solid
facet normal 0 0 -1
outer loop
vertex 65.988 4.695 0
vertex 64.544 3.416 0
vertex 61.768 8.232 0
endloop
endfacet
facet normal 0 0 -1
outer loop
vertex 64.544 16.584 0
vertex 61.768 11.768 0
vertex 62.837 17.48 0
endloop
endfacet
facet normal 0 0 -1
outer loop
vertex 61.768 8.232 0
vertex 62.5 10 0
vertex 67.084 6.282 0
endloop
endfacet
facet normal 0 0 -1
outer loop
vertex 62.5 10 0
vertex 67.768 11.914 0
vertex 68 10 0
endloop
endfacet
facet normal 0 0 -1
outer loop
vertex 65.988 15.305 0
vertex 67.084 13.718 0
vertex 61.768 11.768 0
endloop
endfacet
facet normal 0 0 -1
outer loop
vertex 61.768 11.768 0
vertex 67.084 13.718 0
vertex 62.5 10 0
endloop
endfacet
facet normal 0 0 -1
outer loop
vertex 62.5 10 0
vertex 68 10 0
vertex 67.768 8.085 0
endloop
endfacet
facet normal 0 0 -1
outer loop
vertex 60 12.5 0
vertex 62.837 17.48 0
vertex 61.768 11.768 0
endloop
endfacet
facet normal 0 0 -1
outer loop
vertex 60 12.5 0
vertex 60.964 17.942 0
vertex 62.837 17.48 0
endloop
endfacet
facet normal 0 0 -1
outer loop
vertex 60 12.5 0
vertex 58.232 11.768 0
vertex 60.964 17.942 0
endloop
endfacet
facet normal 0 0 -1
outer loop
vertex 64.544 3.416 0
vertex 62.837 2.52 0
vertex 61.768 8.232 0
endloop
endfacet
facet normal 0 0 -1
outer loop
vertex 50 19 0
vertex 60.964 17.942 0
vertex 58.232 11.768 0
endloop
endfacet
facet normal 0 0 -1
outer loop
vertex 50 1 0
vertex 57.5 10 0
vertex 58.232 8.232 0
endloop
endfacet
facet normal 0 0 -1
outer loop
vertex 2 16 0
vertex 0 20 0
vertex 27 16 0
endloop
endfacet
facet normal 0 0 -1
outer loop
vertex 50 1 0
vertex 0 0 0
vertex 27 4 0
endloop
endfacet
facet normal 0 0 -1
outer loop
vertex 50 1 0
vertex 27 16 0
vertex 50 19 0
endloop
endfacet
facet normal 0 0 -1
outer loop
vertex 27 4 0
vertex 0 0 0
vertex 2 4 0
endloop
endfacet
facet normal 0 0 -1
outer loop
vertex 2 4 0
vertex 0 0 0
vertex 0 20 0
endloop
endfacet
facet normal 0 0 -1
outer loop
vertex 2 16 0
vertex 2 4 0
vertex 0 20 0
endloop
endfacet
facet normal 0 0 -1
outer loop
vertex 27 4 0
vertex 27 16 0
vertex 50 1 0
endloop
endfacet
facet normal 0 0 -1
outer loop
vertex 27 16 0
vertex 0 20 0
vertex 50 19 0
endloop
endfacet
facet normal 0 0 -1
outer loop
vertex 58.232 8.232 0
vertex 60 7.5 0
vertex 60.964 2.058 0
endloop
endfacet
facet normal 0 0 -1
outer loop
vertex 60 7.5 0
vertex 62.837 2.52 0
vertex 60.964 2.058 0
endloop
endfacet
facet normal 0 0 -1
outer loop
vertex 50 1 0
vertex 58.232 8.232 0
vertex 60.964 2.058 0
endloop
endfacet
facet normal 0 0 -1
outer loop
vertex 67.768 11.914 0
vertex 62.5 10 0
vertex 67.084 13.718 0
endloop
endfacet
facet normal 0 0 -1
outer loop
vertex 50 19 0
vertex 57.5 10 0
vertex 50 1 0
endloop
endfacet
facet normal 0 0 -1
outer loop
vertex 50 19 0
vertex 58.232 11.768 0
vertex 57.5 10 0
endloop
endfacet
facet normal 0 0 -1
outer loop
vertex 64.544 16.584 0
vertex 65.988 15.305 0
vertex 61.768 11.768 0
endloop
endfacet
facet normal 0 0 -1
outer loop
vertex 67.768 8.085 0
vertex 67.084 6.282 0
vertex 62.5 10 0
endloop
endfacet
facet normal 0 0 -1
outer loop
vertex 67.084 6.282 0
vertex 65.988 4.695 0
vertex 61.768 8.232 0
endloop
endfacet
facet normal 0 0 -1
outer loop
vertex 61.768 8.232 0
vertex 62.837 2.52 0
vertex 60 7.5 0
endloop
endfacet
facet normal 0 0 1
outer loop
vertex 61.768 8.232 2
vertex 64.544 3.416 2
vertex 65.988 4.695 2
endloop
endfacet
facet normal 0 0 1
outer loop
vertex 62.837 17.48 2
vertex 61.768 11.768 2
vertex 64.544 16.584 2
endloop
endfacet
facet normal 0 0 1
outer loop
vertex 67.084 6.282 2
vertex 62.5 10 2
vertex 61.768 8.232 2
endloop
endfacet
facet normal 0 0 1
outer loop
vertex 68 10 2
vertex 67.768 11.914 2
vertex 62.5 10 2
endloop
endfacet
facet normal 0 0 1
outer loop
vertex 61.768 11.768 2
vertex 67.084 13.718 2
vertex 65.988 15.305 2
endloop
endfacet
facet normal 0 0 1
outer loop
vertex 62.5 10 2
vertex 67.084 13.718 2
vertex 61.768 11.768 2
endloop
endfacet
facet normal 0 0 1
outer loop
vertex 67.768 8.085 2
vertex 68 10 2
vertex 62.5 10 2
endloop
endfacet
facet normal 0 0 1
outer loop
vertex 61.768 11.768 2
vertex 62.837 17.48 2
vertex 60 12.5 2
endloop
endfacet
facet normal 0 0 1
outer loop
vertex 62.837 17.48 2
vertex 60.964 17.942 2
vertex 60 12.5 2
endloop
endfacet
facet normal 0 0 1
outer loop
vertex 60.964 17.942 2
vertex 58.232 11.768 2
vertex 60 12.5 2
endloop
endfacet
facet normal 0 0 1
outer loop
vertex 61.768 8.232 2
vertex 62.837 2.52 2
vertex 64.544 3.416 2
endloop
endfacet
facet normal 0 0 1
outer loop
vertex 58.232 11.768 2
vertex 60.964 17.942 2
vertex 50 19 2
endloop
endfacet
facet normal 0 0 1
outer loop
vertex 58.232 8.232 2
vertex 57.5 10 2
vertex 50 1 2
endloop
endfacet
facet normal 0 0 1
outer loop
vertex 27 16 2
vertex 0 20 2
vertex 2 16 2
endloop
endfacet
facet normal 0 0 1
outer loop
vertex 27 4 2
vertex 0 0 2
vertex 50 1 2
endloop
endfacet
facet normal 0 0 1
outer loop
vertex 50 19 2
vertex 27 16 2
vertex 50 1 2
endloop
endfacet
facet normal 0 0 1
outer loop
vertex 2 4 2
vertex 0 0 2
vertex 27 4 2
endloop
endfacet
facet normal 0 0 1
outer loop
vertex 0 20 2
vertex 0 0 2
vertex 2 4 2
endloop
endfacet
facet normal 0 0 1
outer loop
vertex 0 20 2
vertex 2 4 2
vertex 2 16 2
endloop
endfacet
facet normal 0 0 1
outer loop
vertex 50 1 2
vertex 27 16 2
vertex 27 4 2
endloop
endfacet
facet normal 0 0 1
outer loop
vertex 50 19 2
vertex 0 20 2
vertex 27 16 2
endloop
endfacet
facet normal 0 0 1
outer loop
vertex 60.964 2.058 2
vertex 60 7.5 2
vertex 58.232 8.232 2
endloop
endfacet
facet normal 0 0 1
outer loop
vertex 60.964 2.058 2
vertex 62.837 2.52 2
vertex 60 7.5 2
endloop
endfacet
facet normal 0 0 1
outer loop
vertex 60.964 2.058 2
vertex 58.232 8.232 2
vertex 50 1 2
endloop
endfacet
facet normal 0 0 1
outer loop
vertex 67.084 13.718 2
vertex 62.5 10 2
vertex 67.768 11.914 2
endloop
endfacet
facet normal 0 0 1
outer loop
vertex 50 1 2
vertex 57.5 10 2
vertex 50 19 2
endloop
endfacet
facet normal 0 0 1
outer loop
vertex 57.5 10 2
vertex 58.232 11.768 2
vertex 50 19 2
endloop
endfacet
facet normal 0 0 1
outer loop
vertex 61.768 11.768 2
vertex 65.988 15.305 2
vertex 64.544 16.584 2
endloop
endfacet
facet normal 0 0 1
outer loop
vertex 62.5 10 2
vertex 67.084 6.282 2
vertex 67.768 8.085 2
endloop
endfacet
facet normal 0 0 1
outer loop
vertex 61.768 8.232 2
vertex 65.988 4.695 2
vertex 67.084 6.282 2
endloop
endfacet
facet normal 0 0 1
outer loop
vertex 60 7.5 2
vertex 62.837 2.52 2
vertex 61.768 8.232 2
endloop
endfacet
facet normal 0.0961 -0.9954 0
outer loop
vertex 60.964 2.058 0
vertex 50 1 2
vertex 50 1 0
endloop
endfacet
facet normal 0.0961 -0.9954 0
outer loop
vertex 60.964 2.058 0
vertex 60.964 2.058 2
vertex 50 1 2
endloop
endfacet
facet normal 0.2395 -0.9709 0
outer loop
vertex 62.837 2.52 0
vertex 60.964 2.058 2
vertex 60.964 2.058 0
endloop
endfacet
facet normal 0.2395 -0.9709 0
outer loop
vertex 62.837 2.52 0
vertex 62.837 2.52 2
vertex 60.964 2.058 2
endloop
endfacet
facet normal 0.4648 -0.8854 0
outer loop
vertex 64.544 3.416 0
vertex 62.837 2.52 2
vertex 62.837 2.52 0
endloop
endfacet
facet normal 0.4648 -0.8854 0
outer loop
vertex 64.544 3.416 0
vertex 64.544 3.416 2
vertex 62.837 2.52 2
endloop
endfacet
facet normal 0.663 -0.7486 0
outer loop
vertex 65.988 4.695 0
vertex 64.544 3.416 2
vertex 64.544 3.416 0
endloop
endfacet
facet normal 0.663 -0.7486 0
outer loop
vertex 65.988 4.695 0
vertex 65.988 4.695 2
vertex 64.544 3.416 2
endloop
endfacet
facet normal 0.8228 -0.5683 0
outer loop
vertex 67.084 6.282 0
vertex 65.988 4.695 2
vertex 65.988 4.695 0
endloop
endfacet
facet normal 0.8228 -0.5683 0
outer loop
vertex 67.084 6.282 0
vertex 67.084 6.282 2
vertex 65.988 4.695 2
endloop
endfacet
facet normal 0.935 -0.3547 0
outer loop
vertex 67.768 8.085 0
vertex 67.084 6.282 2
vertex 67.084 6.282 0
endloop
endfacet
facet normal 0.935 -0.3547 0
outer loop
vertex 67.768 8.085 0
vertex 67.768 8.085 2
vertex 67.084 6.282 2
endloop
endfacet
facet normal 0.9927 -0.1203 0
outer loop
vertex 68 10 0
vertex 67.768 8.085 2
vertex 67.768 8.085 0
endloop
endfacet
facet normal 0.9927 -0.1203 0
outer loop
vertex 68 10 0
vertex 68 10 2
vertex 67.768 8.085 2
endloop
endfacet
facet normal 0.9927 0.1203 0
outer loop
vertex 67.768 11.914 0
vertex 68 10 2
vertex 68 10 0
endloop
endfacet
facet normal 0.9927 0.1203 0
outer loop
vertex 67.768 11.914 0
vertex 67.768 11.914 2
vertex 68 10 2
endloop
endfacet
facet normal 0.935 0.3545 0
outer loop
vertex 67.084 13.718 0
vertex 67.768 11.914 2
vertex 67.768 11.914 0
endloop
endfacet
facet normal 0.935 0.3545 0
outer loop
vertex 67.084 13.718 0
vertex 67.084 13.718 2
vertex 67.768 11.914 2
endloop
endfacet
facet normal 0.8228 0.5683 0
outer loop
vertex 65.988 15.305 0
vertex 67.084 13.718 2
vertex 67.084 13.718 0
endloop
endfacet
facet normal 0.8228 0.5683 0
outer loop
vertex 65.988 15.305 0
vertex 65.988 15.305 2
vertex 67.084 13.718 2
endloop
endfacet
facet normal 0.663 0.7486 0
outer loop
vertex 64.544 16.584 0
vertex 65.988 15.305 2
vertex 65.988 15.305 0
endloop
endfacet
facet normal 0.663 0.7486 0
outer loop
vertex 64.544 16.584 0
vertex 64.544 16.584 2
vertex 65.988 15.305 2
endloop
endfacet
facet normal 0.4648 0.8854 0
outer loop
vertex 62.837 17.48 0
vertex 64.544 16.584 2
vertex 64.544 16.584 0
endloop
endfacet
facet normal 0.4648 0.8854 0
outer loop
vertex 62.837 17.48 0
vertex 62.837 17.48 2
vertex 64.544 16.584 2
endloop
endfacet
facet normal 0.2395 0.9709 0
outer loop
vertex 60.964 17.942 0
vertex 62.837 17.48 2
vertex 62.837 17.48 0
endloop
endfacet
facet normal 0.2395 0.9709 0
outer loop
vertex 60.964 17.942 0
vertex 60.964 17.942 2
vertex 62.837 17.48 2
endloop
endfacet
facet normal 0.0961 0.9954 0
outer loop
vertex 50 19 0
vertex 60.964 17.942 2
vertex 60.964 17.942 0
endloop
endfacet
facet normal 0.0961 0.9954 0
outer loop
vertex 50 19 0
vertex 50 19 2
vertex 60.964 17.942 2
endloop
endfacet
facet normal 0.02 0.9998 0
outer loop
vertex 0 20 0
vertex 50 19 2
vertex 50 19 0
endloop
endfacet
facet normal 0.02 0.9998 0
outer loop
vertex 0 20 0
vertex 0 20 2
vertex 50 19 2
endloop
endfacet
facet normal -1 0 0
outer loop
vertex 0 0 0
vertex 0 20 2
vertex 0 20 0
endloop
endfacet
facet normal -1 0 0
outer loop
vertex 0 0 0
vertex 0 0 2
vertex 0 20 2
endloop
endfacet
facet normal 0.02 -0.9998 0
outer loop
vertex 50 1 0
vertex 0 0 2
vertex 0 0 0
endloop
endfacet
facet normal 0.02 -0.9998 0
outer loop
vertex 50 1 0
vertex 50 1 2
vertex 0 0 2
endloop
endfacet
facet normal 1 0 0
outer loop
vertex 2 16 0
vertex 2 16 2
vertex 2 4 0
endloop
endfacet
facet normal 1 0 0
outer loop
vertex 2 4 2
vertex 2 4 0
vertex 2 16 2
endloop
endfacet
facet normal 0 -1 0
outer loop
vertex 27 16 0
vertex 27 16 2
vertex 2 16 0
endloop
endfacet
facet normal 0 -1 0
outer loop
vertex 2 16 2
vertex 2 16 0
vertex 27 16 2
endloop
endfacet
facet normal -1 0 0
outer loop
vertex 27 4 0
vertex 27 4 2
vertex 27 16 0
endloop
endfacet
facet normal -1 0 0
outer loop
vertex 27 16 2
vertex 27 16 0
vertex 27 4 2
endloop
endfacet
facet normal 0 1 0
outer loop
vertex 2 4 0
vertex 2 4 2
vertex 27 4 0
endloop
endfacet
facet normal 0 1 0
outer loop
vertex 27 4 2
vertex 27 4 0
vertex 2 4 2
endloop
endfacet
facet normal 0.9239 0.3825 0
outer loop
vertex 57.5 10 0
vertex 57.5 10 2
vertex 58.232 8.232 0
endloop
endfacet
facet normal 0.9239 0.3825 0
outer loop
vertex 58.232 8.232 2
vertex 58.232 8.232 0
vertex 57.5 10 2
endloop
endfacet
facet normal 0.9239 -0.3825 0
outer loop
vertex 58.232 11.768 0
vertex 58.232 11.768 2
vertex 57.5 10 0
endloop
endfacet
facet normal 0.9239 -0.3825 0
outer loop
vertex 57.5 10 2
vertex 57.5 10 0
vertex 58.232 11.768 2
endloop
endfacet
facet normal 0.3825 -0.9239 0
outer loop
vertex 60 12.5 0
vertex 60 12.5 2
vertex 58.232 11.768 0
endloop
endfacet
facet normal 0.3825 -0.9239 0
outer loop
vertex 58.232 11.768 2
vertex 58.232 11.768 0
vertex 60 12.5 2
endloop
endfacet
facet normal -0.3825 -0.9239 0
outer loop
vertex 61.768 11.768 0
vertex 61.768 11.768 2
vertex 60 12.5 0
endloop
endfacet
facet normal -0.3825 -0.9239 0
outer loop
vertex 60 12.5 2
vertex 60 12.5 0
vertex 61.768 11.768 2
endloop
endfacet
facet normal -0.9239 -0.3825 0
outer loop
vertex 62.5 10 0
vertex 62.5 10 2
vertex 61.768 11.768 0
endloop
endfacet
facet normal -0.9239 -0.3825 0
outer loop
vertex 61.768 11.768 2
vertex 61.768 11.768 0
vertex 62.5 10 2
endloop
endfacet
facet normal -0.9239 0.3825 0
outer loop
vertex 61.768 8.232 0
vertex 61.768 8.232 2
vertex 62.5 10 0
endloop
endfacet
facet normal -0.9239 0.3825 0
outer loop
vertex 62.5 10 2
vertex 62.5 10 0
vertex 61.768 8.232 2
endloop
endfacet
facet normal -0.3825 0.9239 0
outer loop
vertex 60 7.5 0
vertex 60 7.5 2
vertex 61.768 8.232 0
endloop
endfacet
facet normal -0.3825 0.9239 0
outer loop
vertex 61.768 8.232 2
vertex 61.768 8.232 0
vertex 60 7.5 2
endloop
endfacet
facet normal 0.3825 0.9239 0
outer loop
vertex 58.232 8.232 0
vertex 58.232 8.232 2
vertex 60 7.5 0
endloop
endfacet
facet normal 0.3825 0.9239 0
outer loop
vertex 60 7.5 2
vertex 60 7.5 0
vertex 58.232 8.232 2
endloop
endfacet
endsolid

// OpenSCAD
linear_extrude(height = 2)  
{
    difference() {
        hull() {
            polygon(points=[[0,0],[50,1],[50,19],[0,20]]);
            translate([60,10]) 
                circle(8, center=true);
        }
        translate([60,10]) circle(2.5, center=true);
        translate([2,4]) square([25,12]);
    }
    
}
    
